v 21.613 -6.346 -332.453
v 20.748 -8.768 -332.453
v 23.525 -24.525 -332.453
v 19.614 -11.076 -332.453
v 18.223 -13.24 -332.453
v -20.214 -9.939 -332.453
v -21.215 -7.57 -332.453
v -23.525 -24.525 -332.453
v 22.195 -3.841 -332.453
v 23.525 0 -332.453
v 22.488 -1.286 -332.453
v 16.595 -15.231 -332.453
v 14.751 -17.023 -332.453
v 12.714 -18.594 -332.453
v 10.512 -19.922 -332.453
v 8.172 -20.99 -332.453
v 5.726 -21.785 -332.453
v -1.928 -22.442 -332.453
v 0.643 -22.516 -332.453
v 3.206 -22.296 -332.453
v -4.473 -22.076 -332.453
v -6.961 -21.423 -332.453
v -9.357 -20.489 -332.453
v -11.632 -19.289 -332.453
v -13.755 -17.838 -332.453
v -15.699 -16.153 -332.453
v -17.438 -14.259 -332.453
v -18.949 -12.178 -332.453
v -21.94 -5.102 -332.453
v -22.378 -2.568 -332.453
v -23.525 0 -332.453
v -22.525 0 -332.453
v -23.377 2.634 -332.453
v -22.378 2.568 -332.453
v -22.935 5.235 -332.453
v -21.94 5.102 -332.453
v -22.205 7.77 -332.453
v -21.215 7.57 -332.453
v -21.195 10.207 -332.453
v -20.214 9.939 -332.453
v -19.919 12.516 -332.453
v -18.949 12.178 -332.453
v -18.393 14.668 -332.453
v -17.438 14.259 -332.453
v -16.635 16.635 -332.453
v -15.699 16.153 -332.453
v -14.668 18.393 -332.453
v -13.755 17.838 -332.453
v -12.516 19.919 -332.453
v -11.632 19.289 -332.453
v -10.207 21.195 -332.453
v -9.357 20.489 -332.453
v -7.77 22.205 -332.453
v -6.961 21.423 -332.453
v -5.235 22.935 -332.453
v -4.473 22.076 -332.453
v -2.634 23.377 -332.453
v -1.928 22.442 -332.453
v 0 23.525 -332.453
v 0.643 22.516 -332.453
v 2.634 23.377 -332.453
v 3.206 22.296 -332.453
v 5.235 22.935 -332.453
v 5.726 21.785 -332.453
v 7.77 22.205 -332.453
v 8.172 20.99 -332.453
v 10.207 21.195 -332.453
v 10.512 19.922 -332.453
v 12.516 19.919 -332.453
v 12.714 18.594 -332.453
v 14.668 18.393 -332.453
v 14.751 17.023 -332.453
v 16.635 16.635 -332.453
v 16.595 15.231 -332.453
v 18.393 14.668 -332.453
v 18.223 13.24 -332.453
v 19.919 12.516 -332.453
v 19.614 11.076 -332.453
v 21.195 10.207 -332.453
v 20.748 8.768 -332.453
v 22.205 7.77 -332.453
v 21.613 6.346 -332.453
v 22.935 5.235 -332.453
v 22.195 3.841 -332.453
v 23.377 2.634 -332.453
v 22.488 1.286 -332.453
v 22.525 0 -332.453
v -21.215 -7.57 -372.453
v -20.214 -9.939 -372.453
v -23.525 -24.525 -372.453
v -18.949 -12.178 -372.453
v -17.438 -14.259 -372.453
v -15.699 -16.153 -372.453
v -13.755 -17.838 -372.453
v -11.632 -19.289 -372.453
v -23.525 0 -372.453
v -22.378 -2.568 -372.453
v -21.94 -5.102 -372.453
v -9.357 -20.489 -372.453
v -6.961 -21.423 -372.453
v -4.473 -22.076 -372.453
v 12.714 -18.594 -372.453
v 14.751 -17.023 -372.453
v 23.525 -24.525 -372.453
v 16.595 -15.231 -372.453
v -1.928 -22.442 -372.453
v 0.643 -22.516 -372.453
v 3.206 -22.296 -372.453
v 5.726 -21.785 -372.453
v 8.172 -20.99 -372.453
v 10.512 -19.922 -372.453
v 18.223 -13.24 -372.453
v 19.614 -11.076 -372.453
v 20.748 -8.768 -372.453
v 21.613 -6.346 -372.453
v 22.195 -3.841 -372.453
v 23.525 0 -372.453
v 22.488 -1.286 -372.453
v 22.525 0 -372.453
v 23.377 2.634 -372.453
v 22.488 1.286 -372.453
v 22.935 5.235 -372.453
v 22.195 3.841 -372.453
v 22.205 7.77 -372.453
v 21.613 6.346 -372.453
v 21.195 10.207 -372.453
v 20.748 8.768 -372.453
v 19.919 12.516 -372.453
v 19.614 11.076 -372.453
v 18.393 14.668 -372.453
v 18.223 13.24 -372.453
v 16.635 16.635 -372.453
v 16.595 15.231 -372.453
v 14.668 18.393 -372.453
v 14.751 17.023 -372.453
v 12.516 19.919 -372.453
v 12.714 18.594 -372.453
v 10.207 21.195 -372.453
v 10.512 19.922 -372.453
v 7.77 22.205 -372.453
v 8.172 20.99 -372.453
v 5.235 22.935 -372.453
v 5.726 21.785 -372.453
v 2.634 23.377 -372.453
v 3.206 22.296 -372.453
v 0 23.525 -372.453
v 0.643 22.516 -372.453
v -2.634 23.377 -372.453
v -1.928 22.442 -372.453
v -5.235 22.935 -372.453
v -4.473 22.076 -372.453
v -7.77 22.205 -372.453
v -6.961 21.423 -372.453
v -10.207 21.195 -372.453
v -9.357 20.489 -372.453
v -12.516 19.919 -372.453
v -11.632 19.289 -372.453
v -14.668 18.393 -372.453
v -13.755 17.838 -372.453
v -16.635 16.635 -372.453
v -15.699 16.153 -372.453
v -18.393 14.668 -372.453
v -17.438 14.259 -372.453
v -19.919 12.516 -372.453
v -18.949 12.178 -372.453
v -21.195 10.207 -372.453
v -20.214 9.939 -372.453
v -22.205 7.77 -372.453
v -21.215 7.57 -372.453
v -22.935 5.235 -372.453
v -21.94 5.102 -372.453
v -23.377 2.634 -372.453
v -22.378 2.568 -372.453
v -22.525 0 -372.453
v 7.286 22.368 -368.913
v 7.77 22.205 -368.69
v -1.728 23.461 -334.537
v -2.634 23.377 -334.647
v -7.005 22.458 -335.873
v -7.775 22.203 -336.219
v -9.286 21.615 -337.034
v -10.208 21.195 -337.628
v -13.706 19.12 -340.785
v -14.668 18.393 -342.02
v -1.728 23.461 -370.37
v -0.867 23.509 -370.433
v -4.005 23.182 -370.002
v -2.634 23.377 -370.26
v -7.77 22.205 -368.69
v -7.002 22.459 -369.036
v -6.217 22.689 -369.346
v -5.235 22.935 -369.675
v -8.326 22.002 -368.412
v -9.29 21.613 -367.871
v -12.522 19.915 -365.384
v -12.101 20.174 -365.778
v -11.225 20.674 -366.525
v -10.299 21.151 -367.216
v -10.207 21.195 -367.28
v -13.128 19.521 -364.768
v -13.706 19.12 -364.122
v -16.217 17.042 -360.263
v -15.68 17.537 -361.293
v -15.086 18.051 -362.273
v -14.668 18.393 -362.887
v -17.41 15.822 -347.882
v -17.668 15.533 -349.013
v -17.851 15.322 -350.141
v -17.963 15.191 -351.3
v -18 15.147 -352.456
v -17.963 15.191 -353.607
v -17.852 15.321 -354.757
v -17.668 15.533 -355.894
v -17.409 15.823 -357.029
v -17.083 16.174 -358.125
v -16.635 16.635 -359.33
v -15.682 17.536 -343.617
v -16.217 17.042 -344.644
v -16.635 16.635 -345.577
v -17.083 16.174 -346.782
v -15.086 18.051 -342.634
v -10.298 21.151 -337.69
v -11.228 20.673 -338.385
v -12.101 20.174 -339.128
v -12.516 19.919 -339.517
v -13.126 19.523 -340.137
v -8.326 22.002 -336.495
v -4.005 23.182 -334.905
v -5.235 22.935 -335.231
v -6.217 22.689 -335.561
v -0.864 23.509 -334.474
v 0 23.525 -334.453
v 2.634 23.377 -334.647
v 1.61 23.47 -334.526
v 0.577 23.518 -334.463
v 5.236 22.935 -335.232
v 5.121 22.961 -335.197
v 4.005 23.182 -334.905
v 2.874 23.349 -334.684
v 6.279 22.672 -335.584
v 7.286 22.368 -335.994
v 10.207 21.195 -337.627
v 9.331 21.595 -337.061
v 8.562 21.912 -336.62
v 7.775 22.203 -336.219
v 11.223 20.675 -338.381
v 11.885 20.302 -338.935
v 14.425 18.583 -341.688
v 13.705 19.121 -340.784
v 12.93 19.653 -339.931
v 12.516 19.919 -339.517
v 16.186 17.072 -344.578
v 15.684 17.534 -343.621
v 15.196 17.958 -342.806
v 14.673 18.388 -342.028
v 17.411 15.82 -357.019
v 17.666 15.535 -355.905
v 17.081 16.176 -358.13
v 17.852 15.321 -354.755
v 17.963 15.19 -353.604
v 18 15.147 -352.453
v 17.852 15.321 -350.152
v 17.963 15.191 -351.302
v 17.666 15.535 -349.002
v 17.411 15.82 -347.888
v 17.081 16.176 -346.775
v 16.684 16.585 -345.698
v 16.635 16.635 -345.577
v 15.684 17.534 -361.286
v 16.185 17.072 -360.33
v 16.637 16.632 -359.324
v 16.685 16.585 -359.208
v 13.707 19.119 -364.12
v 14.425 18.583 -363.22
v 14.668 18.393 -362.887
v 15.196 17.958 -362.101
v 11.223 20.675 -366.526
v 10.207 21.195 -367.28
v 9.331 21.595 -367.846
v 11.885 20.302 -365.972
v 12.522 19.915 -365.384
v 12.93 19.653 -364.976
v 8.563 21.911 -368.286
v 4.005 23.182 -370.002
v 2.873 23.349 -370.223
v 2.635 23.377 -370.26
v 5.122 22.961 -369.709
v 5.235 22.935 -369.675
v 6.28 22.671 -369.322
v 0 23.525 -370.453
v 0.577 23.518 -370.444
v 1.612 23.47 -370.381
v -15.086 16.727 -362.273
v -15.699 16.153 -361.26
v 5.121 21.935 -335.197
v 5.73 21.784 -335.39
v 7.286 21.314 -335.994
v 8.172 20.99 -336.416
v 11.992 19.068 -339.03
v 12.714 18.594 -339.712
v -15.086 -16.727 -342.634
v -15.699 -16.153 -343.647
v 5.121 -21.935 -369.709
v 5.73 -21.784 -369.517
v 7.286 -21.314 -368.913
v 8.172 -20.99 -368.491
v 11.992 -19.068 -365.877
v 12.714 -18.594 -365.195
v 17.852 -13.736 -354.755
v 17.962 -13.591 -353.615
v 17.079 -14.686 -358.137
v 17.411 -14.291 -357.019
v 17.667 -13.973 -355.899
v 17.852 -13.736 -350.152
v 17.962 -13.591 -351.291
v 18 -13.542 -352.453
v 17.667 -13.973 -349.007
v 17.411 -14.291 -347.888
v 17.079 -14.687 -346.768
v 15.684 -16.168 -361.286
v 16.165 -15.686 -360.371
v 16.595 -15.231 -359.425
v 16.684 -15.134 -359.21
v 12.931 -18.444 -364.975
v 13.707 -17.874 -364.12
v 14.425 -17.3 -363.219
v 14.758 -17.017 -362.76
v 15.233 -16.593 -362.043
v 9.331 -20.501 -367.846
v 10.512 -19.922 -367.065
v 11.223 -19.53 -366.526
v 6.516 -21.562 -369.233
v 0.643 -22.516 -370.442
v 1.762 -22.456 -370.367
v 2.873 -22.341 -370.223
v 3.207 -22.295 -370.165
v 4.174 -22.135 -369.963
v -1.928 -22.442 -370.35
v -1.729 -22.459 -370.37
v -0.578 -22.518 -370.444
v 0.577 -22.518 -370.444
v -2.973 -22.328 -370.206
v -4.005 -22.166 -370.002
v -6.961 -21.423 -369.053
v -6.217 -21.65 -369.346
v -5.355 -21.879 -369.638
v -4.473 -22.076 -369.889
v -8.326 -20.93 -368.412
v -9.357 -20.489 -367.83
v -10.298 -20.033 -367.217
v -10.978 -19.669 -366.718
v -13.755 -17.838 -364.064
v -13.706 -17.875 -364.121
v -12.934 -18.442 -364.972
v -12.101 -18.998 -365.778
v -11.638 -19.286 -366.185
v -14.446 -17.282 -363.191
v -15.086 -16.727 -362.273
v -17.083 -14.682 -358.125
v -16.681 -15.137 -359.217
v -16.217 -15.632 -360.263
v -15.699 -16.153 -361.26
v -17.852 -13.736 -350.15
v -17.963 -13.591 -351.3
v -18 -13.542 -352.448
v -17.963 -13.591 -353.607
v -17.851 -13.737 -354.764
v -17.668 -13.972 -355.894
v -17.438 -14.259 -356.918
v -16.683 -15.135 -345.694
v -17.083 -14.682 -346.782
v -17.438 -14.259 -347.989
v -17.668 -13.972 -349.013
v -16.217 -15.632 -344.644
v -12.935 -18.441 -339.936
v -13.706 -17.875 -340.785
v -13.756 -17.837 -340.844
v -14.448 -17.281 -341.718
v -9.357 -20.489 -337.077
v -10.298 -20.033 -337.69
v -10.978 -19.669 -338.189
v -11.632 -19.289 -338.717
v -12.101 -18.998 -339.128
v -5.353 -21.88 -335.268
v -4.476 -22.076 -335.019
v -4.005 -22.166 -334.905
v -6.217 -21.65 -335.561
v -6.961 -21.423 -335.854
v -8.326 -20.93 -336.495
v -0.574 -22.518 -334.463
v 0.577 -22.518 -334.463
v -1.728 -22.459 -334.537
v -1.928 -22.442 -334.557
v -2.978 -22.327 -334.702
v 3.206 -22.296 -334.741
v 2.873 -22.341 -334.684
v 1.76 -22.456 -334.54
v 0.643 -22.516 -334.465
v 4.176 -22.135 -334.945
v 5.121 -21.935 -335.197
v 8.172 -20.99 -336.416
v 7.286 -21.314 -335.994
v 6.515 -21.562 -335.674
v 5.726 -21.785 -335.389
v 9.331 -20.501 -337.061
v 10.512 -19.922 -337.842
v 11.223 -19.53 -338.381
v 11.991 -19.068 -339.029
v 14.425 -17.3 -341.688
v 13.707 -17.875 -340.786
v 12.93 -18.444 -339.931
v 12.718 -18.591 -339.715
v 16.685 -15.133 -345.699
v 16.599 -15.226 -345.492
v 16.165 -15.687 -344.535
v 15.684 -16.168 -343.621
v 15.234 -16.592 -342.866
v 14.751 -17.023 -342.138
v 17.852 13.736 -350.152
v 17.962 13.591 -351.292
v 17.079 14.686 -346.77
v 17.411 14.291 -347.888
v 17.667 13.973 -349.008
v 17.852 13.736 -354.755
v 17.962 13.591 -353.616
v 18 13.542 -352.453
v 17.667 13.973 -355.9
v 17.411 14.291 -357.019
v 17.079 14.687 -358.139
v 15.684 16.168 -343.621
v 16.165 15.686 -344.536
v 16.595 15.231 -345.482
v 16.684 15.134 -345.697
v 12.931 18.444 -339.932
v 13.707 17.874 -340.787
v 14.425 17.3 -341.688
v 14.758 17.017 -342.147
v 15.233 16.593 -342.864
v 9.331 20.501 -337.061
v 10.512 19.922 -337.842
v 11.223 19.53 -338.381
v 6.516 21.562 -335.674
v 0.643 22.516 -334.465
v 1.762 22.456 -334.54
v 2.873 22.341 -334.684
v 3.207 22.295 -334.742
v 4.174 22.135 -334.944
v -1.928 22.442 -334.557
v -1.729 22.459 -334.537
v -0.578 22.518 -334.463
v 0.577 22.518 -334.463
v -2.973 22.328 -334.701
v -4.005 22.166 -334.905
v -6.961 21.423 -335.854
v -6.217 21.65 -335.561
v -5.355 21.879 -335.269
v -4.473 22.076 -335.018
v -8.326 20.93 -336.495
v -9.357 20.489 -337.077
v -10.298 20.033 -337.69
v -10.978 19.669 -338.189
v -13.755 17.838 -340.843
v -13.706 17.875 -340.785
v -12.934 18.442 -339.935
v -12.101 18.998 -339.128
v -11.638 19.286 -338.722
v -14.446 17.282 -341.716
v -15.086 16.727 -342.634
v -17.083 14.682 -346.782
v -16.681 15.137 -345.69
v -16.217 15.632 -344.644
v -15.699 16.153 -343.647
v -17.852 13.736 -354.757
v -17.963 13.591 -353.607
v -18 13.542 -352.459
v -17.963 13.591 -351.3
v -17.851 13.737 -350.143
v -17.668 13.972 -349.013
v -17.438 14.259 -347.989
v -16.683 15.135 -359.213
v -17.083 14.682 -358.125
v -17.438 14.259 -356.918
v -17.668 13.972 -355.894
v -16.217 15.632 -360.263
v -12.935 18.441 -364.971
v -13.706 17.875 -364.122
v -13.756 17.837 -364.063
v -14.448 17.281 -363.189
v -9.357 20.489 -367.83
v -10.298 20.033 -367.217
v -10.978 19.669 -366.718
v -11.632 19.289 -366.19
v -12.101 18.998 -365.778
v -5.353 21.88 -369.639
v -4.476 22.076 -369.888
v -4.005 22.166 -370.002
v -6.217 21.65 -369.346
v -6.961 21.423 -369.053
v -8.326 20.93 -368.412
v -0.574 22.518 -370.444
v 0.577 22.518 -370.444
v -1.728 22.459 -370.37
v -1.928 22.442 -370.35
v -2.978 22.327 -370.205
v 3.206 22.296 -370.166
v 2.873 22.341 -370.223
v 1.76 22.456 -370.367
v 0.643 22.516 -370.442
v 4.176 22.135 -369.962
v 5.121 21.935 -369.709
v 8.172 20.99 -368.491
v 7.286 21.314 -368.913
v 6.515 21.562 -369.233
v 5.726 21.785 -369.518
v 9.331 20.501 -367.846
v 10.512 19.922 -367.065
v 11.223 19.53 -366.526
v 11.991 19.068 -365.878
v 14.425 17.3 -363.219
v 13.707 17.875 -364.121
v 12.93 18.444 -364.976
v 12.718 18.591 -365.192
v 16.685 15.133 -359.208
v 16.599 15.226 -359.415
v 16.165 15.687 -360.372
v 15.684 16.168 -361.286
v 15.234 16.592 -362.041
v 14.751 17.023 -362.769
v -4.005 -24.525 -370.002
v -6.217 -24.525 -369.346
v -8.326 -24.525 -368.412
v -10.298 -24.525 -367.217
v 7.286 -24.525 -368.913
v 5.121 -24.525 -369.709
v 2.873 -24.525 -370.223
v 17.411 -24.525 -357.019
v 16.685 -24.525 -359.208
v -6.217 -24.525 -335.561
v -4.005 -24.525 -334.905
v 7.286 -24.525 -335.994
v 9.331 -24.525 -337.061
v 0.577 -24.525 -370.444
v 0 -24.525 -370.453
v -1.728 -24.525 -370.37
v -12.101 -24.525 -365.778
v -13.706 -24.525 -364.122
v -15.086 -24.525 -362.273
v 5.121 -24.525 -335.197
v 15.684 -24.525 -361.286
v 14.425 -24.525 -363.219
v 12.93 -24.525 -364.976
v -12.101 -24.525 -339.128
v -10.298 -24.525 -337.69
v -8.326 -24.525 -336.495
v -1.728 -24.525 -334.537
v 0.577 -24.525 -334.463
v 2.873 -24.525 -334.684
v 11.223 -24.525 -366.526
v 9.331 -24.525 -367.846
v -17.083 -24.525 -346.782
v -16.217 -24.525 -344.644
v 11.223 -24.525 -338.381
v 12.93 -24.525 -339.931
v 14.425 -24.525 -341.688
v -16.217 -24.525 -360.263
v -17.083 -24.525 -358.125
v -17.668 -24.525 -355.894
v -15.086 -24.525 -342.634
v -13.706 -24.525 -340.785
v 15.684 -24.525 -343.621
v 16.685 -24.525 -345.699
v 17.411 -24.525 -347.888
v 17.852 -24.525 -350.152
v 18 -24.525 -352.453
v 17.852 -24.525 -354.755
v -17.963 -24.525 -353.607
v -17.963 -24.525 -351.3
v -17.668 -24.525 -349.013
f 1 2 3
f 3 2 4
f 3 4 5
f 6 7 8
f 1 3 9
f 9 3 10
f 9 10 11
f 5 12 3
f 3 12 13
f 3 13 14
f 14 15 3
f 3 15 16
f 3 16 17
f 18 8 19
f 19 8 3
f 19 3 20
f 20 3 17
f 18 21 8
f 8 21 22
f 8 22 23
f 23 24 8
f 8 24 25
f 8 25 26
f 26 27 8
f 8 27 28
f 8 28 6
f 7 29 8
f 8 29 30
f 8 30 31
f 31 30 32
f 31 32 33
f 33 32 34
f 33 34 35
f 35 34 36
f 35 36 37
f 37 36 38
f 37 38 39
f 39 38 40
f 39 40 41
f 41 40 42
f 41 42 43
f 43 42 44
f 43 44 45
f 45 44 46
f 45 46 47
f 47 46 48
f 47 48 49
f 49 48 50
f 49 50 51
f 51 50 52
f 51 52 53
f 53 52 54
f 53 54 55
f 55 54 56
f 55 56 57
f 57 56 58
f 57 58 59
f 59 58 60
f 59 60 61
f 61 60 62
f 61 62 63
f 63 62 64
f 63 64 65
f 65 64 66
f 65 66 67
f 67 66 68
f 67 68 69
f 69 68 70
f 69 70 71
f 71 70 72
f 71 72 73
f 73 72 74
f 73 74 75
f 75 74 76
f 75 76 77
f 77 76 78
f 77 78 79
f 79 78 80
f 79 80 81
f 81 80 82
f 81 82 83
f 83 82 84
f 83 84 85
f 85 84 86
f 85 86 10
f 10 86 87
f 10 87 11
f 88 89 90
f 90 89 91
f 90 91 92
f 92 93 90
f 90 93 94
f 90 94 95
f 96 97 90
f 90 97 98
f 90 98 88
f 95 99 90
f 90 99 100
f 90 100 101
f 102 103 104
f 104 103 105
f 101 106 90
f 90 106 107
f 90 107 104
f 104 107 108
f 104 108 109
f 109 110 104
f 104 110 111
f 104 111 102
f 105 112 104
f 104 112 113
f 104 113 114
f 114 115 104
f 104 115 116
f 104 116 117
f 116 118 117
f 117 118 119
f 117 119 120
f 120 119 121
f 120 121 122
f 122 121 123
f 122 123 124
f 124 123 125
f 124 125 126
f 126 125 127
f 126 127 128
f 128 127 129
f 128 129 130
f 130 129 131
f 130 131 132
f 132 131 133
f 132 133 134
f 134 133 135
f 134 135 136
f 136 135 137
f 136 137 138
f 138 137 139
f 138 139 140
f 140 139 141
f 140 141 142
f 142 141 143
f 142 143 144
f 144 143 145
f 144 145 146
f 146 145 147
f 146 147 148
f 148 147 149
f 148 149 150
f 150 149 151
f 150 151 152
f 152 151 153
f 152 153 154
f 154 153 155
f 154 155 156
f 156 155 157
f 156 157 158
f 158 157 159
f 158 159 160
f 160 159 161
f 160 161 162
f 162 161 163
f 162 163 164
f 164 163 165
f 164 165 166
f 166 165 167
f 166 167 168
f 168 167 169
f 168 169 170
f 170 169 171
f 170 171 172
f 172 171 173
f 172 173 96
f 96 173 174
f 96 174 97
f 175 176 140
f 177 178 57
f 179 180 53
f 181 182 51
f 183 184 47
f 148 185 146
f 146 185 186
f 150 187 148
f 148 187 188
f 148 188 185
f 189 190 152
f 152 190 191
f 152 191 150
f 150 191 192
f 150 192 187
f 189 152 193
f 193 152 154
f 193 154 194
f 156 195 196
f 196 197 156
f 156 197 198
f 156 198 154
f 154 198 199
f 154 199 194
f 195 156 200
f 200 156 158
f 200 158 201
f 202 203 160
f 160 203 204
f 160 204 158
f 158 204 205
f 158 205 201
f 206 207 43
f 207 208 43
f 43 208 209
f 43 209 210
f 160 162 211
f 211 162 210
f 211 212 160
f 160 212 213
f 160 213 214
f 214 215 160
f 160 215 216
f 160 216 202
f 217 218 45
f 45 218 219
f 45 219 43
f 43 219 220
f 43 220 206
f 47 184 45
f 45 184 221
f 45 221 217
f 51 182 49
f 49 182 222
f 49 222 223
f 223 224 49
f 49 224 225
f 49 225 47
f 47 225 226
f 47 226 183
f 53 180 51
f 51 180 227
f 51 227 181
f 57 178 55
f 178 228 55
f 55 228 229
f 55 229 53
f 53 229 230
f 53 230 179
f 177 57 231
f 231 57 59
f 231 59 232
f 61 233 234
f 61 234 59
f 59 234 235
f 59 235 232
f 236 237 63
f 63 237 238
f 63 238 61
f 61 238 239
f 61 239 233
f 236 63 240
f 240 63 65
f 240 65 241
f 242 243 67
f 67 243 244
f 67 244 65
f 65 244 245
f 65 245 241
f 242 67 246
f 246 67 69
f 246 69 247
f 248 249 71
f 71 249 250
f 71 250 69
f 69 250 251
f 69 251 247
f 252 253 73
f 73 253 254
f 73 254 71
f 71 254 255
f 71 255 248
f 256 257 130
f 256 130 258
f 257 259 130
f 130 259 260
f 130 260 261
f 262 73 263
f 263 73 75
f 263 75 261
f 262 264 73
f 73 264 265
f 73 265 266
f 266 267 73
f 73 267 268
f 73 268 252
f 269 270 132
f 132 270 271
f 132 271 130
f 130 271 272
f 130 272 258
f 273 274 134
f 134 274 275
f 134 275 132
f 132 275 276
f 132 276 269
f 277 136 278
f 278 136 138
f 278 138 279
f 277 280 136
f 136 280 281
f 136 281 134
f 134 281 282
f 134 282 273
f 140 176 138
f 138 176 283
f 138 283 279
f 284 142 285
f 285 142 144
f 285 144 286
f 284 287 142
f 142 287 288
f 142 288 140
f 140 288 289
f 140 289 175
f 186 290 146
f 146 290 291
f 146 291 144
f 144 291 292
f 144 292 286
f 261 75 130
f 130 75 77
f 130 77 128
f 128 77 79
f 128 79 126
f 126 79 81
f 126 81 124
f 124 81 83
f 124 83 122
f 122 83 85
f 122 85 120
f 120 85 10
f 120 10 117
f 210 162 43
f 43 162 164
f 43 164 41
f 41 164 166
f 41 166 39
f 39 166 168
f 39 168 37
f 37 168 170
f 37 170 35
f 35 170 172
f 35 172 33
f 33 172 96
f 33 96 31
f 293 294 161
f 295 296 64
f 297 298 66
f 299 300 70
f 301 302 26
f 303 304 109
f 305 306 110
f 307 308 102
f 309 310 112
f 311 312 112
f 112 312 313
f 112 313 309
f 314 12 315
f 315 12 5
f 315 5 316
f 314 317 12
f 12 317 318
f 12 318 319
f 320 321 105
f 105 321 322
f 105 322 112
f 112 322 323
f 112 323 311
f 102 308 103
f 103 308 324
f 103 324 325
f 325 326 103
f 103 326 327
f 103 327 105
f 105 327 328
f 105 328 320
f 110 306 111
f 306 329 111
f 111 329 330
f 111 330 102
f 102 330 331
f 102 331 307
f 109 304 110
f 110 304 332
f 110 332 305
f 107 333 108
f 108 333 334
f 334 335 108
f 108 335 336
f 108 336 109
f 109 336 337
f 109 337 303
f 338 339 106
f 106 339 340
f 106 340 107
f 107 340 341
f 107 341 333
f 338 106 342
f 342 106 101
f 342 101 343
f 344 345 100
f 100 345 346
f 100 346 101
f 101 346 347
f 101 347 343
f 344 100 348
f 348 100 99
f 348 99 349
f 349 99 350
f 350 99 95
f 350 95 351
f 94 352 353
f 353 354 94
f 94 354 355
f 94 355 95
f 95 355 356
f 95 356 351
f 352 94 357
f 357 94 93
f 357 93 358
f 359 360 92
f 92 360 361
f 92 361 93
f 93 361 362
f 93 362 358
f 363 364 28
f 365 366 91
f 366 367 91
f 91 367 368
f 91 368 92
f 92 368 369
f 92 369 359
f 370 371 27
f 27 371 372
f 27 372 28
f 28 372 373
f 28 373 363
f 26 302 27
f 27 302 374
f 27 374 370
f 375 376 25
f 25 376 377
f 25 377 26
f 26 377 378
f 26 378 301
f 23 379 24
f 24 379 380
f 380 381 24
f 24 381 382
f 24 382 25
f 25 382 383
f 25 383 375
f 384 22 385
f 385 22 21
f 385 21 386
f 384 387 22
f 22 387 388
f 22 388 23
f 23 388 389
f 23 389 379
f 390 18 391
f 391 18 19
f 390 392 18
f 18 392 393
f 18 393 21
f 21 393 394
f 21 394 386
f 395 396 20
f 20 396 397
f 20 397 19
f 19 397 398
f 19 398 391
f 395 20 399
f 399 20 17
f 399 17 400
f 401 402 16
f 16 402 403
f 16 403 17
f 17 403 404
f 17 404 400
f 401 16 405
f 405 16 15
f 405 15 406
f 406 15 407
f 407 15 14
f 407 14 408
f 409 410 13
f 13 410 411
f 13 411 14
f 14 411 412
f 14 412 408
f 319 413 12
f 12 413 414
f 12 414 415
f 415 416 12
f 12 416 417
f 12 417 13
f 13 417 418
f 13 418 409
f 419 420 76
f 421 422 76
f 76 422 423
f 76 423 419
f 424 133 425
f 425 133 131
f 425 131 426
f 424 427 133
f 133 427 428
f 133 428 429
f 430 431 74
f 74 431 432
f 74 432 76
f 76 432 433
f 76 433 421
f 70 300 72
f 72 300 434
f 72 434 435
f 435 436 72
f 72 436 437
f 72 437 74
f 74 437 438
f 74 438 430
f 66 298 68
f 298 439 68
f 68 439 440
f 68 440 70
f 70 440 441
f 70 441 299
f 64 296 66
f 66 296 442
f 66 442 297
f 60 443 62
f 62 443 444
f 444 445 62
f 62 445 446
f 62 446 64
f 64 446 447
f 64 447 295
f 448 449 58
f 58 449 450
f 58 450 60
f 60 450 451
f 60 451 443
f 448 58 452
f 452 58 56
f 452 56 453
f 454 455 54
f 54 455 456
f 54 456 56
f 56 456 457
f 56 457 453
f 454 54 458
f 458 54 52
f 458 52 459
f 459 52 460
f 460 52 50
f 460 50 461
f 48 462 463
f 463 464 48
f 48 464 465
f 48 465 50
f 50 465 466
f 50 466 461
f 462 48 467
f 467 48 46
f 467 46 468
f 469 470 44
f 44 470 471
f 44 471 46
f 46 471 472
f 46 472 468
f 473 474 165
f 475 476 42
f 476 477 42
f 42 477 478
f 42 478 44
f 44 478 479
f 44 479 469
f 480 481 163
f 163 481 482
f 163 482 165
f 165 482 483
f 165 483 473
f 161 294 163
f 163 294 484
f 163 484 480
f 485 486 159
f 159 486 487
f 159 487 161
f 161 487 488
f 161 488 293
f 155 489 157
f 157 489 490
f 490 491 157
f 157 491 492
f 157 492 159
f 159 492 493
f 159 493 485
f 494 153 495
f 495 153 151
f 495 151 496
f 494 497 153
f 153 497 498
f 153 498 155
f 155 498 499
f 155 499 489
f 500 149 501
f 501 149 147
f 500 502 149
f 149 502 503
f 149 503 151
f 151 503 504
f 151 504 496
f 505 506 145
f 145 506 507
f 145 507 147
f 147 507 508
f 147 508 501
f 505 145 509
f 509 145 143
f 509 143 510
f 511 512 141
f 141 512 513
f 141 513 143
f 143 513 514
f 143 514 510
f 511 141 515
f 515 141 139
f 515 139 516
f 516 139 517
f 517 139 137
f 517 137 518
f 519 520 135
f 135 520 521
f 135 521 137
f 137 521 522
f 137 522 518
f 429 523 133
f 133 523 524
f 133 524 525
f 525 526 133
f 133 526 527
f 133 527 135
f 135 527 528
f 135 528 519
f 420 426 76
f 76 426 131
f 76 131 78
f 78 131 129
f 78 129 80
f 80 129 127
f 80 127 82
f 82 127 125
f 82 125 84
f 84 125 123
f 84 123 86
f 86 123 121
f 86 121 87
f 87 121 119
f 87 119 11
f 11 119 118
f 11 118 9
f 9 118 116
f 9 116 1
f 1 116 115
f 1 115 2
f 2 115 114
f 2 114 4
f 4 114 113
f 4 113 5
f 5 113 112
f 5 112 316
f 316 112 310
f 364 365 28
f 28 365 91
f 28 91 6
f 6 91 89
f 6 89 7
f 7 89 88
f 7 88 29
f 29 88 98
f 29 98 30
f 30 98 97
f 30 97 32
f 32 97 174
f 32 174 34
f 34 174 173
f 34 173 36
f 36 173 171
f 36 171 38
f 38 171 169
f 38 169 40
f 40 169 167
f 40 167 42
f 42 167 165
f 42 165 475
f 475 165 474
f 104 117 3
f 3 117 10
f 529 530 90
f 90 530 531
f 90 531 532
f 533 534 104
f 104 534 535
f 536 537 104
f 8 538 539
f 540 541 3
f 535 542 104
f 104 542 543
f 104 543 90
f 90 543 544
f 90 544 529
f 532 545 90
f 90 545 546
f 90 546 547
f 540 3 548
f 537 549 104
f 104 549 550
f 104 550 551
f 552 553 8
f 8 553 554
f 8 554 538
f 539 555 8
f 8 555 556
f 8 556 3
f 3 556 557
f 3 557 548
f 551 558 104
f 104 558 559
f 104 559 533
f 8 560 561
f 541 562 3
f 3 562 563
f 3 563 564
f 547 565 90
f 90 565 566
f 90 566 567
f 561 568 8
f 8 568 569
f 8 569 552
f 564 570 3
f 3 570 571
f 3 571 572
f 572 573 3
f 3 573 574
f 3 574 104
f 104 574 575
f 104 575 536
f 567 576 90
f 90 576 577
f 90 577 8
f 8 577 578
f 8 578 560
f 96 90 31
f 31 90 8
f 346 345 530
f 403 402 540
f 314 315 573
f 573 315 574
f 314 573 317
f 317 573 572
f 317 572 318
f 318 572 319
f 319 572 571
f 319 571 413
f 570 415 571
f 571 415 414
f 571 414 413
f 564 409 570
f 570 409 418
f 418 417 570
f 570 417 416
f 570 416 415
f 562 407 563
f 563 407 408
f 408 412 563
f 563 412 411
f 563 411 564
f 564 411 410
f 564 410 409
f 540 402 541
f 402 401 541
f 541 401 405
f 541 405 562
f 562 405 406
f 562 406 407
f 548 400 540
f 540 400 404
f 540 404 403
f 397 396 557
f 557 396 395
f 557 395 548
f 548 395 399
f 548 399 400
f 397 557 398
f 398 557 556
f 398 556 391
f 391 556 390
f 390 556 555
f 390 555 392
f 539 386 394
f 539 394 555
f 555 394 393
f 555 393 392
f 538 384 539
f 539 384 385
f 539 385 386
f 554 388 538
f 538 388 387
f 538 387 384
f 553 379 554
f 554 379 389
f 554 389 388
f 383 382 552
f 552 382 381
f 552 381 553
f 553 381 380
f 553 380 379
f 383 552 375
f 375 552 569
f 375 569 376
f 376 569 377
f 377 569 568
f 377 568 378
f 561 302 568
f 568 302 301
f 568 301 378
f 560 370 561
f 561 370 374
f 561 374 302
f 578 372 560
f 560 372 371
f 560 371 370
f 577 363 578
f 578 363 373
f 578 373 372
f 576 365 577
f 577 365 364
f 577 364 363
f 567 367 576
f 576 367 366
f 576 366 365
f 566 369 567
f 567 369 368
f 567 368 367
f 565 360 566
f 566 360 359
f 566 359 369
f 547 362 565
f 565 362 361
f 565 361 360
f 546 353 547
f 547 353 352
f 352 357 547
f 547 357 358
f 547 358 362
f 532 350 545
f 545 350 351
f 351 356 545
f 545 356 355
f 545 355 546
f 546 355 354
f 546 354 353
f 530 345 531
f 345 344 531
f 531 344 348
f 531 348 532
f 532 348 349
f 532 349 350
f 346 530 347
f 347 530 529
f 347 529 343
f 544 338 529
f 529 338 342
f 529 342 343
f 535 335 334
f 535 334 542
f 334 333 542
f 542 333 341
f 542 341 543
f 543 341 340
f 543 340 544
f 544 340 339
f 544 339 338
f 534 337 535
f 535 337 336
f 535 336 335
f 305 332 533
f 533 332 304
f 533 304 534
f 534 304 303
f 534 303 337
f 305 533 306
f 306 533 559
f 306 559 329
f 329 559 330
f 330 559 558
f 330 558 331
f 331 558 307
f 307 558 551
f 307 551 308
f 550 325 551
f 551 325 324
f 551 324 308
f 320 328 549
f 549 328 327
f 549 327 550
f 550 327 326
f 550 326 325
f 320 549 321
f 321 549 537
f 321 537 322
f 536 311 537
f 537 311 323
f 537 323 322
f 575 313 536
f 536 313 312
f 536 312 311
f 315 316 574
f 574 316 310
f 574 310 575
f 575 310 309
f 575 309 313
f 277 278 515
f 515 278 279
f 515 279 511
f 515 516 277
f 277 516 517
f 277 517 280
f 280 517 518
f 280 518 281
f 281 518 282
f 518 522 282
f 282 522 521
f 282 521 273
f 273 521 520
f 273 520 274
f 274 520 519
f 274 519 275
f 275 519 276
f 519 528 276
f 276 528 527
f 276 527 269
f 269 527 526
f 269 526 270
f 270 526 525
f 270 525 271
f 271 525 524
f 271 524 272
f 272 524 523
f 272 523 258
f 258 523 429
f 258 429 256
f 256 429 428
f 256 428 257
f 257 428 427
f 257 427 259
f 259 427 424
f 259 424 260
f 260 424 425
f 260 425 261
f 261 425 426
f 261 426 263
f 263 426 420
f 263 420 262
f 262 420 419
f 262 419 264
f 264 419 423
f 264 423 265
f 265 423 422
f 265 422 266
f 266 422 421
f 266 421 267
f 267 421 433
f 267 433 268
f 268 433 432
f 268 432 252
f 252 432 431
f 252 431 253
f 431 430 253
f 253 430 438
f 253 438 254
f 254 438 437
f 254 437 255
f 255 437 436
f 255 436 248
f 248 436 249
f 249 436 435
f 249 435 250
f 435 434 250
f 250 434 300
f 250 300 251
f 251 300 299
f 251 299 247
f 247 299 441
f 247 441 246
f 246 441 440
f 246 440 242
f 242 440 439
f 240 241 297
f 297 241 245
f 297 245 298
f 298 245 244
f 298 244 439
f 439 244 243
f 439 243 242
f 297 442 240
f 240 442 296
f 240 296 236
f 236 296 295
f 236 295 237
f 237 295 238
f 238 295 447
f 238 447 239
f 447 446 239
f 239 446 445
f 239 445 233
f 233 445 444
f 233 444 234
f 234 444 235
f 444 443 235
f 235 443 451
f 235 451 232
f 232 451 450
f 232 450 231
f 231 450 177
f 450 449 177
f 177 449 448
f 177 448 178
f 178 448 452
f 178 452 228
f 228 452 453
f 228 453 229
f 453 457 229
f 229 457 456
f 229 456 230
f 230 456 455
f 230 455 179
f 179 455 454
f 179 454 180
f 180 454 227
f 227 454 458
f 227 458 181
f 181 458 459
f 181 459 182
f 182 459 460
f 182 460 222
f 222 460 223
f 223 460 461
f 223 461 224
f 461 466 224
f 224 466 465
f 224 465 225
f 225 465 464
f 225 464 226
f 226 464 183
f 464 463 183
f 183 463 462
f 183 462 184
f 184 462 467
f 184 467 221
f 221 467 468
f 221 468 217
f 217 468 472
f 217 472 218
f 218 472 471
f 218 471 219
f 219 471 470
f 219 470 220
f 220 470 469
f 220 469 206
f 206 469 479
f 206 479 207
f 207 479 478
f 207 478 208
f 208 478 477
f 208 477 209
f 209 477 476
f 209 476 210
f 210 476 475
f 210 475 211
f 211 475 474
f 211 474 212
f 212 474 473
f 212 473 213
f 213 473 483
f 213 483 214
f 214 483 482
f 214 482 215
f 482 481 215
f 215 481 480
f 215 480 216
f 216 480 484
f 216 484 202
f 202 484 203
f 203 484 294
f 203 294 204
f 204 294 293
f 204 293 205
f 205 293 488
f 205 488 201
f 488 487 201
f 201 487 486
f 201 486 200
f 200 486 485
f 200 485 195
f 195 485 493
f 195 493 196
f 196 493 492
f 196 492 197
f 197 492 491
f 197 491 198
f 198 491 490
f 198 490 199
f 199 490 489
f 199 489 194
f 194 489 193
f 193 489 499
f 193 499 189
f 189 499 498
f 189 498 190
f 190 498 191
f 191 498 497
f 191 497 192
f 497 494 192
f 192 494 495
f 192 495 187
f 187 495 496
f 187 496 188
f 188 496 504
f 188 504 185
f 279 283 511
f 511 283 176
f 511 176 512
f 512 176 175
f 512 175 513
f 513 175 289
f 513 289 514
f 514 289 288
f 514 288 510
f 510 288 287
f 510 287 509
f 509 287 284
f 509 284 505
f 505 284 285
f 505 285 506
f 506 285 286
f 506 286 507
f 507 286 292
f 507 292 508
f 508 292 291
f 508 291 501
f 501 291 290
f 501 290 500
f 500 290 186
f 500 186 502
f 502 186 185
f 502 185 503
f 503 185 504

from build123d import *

# Parameters (mm, degrees)
BOSS_EXTRUDE1_START = -352.453482
SKETCH1_R           = 23.525
SKETCH1_R_2         = 22.525
BOSS_EXTRUDE1_DEPTH = 20
BOSS_EXTRUDE2_DEPTH = 40
SKETCH3_R           = 18
CUT_EXTRUDE1_DEPTH  = 74.525


with BuildPart() as part:
    # Sketch1 → Boss-Extrude1 (new body, symmetric)
    with BuildSketch(Plane.XY.offset(BOSS_EXTRUDE1_START)):
        Circle(SKETCH1_R)
        Circle(SKETCH1_R_2, mode=Mode.SUBTRACT)
    extrude(amount=BOSS_EXTRUDE1_DEPTH, both=True)

    # Sketch4 → Boss-Extrude2 (add)
    with BuildSketch(Plane.XY.offset(-332.453482287)):
        Polygon((23.525, -23.525), (23.525, -24.525), (-23.525, -24.525), (-23.525, -23.525), (0, -23.525), align=None)
        with BuildLine():
            ThreePointArc((0, -23.525), (-16.634687027, -16.634687027), (-23.525, 0))
            Line((-23.525, 0), (-23.525, -23.525))
            Line((-23.525, -23.525), (0, -23.525))
        make_face()
        with BuildLine():
            Line((23.525, -23.525), (23.525, 0))
            ThreePointArc((23.525, 0), (16.634687027, -16.634687027), (0, -23.525))
            Line((0, -23.525), (23.525, -23.525))
        make_face()
    extrude(amount=-BOSS_EXTRUDE2_DEPTH)

    # Sketch3 → Cut-Extrude1 (cut, through all)
    with BuildSketch(Plane.XZ.offset(50)):
        with Locations((0, -352.453482287)):
            Circle(SKETCH3_R)
    extrude(amount=-CUT_EXTRUDE1_DEPTH, mode=Mode.SUBTRACT)


solid = part.part
